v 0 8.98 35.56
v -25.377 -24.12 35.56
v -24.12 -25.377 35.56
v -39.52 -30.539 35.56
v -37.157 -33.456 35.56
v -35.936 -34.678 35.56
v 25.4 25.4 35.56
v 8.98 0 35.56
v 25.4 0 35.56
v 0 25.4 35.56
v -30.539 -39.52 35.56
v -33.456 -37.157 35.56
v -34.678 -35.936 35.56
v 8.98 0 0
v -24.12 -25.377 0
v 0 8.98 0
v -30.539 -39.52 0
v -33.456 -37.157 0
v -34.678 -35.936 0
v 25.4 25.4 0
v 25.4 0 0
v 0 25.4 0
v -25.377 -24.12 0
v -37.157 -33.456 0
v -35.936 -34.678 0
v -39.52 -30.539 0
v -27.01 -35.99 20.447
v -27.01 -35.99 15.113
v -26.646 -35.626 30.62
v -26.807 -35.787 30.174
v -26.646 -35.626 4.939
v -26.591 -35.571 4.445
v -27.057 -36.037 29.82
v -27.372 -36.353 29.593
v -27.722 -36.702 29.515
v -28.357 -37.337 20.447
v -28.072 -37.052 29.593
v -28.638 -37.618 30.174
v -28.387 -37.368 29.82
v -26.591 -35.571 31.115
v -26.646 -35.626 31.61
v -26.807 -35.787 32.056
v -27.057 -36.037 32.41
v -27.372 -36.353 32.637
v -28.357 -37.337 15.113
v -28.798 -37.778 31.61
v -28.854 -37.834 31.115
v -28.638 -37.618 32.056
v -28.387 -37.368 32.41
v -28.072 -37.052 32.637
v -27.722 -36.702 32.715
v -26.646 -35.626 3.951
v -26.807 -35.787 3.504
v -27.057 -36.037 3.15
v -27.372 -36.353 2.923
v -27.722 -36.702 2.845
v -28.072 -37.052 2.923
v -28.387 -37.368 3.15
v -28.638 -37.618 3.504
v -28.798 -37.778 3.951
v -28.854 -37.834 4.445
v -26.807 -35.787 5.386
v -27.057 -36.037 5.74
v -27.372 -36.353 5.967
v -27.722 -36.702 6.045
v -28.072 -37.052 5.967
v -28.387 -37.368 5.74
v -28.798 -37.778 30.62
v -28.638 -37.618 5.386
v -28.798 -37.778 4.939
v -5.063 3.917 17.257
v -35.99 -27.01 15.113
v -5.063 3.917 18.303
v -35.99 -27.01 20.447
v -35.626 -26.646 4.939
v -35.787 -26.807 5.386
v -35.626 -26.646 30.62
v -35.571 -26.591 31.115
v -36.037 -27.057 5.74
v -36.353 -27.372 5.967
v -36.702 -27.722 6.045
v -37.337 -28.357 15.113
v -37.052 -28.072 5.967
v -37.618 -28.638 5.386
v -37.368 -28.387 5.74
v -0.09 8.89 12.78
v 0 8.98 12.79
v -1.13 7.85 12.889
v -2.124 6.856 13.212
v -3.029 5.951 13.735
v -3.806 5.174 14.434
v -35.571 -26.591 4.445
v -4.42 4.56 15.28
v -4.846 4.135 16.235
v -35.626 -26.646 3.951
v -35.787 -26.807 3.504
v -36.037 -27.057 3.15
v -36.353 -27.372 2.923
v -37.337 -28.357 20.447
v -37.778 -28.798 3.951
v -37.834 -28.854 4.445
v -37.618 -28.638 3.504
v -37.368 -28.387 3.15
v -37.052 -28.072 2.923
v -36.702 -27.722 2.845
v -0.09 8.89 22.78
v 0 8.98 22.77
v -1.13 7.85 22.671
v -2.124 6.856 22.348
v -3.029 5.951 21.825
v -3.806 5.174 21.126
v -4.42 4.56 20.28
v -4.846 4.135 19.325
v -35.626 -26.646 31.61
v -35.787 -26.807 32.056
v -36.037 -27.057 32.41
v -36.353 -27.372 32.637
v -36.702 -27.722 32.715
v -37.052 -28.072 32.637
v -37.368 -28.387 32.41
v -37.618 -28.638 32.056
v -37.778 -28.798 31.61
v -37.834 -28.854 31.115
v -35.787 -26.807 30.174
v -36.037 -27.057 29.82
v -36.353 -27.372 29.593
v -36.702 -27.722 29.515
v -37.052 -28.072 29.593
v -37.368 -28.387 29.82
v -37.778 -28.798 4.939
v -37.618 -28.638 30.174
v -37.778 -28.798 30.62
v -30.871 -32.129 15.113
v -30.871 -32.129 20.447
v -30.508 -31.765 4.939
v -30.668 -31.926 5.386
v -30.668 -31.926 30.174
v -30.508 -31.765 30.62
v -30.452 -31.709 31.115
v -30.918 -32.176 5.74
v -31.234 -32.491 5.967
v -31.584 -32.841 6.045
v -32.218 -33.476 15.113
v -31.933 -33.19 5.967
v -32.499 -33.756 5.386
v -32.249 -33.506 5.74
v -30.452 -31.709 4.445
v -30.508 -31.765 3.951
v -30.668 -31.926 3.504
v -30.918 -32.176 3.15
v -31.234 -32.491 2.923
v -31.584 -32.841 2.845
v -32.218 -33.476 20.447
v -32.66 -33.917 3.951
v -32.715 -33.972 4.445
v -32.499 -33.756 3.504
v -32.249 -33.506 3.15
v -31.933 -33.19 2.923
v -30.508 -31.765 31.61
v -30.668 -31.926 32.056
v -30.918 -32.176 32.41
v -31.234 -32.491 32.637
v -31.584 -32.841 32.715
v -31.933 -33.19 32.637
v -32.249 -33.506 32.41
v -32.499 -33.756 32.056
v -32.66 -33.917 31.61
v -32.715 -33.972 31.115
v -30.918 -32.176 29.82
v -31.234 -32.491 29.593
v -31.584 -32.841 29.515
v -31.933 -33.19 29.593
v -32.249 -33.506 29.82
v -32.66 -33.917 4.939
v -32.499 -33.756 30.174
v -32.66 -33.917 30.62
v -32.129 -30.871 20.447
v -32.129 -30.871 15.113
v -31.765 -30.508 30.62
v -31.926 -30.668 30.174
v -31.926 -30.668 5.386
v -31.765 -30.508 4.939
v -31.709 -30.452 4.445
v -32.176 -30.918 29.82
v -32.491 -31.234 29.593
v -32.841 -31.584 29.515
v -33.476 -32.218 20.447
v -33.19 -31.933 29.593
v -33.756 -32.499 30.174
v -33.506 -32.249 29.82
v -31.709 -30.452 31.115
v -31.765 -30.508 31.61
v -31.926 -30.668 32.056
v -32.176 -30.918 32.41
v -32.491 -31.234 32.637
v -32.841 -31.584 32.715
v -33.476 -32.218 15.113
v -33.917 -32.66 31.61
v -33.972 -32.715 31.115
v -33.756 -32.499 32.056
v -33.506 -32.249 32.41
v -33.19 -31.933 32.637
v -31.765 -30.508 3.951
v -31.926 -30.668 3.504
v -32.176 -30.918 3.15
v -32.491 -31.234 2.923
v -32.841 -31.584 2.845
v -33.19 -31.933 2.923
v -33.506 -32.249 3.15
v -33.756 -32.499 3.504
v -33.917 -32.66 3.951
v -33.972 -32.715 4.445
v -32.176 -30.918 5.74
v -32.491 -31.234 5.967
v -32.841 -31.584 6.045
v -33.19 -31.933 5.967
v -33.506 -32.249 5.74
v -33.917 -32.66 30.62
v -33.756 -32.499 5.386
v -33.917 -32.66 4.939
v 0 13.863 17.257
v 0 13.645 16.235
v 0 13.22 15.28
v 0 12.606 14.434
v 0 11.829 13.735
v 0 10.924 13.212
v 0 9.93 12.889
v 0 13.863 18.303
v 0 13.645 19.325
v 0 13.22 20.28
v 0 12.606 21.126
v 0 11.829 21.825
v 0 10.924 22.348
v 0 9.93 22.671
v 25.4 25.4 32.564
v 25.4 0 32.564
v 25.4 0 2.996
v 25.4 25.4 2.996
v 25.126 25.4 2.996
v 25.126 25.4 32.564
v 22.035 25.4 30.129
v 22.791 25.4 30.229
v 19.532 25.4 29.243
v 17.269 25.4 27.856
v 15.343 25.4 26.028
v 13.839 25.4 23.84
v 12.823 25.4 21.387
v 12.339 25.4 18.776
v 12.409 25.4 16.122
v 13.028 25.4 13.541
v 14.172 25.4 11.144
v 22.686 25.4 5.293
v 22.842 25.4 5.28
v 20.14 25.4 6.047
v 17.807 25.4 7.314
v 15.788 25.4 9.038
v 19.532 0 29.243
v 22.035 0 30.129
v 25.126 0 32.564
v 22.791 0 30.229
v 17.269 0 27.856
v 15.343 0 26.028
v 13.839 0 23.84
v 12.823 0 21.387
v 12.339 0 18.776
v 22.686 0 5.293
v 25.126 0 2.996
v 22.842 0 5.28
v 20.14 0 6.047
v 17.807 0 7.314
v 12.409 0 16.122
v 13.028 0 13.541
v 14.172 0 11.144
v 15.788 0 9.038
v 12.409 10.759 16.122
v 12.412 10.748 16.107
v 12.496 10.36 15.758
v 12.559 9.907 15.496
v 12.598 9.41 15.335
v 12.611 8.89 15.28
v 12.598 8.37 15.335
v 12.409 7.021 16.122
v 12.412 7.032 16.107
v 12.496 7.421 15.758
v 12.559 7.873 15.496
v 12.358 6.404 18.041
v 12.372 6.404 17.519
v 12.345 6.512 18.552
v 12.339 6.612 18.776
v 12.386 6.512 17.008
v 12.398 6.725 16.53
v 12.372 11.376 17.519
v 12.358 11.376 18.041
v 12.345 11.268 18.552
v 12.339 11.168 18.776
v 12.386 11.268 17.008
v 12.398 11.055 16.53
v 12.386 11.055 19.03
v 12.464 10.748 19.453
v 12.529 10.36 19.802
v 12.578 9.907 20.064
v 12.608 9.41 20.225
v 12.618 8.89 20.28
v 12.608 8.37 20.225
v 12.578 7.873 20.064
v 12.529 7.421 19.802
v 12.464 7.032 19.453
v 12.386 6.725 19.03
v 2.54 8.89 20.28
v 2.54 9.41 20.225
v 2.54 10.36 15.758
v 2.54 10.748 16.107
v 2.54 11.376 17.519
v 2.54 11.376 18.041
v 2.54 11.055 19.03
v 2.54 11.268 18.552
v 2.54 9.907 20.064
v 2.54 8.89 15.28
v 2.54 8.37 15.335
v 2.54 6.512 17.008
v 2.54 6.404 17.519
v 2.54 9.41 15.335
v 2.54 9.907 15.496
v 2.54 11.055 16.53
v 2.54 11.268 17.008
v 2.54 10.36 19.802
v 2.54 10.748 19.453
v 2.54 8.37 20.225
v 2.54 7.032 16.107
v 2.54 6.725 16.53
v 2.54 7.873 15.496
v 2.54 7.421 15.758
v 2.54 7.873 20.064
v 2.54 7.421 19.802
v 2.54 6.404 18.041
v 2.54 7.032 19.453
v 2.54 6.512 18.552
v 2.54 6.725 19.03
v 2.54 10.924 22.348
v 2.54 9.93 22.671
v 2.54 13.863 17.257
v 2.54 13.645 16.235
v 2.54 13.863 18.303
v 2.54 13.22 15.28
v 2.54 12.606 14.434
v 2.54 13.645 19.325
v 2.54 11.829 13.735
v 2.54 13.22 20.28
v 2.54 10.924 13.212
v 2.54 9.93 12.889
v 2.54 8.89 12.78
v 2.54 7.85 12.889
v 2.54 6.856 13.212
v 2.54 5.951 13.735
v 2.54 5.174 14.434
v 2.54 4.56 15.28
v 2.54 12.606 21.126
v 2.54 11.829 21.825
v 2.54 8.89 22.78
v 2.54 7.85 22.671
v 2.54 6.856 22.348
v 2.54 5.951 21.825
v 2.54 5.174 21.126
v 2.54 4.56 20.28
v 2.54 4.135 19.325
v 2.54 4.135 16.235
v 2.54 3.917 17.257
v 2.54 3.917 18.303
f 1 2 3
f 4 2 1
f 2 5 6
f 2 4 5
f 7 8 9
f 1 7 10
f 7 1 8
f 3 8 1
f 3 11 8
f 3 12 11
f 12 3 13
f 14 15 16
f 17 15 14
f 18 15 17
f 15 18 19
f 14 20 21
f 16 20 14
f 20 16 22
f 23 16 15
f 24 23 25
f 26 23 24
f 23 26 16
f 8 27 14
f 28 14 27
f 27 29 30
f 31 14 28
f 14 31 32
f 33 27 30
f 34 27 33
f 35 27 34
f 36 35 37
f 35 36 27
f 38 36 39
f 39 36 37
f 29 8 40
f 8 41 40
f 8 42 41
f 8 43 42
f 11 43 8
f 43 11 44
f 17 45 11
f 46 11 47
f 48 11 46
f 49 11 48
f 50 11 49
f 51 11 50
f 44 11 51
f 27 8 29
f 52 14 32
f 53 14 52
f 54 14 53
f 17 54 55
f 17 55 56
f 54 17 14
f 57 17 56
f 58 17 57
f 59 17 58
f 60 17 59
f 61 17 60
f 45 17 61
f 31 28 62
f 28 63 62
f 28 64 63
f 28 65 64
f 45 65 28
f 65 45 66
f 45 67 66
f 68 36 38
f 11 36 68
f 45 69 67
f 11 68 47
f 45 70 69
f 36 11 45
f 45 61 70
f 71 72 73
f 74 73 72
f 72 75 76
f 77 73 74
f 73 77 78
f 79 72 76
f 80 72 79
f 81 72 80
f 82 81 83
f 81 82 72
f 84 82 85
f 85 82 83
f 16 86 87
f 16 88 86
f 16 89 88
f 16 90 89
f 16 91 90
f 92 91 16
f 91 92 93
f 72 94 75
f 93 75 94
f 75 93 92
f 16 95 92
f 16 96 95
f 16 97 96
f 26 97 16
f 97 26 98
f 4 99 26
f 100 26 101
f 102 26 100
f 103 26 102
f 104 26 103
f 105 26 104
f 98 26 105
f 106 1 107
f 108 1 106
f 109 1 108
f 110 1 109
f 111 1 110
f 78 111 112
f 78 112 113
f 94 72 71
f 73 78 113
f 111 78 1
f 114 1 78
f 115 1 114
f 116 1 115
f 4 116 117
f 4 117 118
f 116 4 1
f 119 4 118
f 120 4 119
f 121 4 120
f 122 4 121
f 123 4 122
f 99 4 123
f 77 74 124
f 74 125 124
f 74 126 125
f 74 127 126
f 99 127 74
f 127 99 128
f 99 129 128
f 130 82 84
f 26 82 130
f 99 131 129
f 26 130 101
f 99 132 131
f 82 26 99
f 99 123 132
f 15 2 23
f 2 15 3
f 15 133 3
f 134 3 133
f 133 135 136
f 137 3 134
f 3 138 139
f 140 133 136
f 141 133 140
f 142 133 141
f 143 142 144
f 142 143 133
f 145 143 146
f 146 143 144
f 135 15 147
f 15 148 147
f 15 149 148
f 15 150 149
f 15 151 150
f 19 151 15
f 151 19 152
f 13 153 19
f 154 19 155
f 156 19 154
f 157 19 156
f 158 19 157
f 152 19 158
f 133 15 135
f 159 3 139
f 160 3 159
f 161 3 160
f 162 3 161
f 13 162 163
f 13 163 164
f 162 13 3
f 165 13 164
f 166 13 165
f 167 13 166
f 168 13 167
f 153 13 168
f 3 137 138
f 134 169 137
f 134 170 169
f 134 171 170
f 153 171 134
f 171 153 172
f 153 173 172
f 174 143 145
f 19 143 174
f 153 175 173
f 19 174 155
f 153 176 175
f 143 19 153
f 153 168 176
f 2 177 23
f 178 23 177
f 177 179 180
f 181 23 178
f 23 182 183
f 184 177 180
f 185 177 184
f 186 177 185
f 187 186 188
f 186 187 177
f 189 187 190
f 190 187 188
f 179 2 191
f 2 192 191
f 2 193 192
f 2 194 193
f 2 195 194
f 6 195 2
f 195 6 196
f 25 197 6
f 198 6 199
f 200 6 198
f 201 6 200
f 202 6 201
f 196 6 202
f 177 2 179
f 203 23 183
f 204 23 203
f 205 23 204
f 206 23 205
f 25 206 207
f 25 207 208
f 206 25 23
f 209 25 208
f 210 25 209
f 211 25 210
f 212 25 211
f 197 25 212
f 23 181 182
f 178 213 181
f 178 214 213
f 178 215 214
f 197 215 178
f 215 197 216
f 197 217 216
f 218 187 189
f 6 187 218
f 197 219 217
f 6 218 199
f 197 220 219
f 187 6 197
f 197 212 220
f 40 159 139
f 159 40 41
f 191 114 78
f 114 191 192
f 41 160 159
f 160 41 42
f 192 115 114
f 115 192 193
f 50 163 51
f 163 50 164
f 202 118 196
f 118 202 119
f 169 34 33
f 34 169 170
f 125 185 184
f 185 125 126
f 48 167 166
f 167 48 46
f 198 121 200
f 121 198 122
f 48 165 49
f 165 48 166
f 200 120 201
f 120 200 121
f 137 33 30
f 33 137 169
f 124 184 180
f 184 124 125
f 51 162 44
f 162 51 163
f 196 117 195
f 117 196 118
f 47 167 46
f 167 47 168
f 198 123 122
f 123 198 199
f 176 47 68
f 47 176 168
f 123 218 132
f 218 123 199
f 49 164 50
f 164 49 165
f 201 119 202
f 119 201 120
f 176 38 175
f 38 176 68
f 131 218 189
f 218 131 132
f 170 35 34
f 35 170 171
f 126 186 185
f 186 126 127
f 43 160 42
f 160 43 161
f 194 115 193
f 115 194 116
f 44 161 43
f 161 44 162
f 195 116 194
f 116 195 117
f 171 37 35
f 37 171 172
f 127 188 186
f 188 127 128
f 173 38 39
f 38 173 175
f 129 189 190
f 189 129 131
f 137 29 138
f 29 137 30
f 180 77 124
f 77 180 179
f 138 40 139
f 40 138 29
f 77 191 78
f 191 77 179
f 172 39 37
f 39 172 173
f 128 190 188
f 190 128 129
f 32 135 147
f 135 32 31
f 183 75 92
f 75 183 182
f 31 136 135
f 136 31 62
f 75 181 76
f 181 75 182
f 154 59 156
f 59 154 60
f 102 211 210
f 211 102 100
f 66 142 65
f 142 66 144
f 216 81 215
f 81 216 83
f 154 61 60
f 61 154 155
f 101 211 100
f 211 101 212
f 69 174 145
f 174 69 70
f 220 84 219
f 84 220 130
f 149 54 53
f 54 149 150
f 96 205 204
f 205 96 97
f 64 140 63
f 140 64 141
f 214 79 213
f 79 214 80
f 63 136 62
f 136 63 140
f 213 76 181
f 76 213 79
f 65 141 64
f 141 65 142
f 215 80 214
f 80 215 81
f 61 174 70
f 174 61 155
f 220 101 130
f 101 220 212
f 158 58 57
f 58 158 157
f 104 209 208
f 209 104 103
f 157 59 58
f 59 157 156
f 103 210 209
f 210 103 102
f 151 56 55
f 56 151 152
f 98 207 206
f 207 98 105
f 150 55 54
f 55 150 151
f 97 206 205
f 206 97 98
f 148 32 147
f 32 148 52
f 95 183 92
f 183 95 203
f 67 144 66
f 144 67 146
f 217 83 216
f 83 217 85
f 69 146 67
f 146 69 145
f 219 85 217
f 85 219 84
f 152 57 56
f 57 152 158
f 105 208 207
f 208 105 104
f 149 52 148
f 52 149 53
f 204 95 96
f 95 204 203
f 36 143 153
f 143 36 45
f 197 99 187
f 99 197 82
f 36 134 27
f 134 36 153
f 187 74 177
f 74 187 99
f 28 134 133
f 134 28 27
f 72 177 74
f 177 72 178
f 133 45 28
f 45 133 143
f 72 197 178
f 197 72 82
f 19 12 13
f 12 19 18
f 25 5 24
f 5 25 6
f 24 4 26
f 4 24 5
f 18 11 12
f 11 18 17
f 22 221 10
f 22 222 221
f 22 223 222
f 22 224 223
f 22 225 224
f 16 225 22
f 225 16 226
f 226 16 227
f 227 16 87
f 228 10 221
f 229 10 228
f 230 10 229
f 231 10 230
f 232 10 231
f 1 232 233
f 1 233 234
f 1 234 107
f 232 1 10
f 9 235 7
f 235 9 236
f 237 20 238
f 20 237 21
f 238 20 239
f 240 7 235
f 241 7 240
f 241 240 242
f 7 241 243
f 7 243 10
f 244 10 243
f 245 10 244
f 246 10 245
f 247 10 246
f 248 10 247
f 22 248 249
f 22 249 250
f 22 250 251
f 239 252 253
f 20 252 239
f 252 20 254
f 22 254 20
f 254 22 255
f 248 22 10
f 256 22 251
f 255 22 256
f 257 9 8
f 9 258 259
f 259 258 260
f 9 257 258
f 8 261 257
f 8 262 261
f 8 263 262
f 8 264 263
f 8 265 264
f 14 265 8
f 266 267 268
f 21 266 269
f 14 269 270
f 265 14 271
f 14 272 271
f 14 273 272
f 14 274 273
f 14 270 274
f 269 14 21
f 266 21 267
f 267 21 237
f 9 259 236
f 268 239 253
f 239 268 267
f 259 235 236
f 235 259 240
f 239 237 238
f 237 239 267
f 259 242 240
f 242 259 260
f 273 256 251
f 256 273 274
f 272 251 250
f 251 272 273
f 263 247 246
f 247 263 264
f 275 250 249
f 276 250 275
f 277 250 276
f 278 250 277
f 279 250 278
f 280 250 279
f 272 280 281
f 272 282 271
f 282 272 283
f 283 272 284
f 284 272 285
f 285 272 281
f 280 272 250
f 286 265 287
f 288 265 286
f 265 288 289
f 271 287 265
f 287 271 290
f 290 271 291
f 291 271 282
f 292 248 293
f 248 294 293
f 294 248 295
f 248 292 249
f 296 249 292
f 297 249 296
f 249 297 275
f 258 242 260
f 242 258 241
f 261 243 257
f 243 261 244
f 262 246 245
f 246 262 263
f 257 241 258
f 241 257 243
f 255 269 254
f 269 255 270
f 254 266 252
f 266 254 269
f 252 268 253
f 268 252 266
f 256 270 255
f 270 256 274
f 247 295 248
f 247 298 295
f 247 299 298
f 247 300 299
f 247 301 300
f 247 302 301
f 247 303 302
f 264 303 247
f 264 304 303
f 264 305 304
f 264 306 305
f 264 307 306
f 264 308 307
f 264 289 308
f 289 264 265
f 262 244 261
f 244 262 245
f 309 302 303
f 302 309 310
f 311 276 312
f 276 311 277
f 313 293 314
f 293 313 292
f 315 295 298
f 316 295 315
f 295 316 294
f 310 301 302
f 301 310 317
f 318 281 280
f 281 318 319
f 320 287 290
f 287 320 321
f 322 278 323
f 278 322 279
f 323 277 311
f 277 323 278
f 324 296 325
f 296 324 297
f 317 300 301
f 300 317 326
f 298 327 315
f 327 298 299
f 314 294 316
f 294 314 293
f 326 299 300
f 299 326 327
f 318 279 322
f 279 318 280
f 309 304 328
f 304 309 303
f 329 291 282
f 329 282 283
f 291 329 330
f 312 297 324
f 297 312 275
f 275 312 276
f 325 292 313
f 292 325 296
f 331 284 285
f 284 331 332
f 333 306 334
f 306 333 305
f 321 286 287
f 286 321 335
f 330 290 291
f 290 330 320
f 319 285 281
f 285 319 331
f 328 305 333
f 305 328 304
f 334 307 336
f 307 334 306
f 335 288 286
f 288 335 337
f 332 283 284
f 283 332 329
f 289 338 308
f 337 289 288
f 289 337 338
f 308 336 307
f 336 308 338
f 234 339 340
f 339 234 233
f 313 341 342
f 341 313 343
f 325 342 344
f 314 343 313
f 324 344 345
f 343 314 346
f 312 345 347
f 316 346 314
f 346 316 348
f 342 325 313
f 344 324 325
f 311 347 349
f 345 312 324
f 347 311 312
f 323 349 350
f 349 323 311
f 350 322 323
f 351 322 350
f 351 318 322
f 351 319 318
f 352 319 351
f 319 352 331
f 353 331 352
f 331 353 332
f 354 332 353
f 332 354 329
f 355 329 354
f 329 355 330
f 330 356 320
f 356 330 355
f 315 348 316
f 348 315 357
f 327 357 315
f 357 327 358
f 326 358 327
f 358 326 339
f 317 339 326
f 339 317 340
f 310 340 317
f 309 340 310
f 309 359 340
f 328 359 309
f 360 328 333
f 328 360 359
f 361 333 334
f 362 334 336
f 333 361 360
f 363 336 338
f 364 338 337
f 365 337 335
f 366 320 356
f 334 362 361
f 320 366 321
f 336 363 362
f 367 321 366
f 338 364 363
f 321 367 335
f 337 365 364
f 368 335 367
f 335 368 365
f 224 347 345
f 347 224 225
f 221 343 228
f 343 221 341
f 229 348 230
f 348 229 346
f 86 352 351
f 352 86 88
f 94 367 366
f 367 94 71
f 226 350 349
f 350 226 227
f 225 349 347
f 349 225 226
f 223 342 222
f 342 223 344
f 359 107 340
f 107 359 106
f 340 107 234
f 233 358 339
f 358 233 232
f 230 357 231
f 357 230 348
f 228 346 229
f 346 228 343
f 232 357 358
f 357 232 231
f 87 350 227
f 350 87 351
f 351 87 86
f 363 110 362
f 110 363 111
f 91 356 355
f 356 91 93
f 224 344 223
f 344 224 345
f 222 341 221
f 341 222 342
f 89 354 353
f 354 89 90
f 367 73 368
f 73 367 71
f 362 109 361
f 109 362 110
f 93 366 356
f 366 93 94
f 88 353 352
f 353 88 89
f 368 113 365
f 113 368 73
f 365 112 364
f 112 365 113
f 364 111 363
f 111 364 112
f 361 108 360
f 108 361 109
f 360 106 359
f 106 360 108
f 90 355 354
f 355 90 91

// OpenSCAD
/* Electric Fence Wire Support
    Author:  Tom Clupper
    Date: 6/30/2020
    License: Attribution-ShareAlike 4.0 International (https://creativecommons.org/licenses/by-sa/4.0)
    
    NOTES:
    - Use this desgin at your own risk.  There is no guarantee that it will work for you.    
    - No supports needed
    - Use a plastic material that will withstand the temperatures and weather conditions outdoors
    - Is attached using a standard 1-1/4 inch long #10 machine screw and nut.  The nut will be held in place.
    - The wire is held in the slot using a standard 3/16 inch wide plastic wire tie (0.053 inch thick)
*/

// A couple of constants (need to end up in mm)
mm = 1.0;
cm = 10.0;
inches = 25.4;
inch = 25.4;
mils = 25.4/1000.0;

// Define some variables
ST = 1.4*inch;      // Support thickness
PBD = 100*mm;       // Print bed diameter
n = 8;              // Number of sides to support
SW = 80*mm;         // Support width
Angle = 45;          // Support angle (0 to 50 degrees)
WD = 0.070*inches;   // Wire diameter


translate([0,0,ST/2]) {    
   difference(){
    union(){
      intersection(){
        rotate([0,0,Angle]){
          difference(){
            // Support stem  
            translate([-PBD/4,0,0]) cube([PBD/2+PBD/2, 0.5*inches,ST], center=true);
            // Slot for wire    
            translate([-PBD/2,0,0]) cube([30*mm, WD, ST], center=true);
            // Holes for wire (if you need to tie it off)
            translate([-PBD/2+2.5*WD,0,ST/2-2.5*WD]) rotate([90,0,0]) cylinder(h=1.5*inch, d=1.8*WD, center=true, $fn=20); 
            translate([-PBD/2+2.5*WD,0,-(ST/2-2.5*WD)]) rotate([90,0,0]) cylinder(h=1.5*inch, d=1.8*WD, center=true, $fn=20);
            // Slot for plastic strap (to hold sire in slot) 
            translate([-PBD/2+4.5,0,0]) cube([0.075*inch,1.5*inch,0.21*inch], center=true);  
          } 
        }
        // Clip off the bed diameter
        cylinder(h=ST,d=PBD,center=true, $fn=60);             
      }
      // The base
      translate([0,0,-ST/2]) cube([1*inch,1*inch,ST]);     
    }
    union(){
      translate([PBD/3.2,0,0]) rotate([0,0,90]) rotate([0,90,0]) rotate([0,0,360/(2*n)]) cylinder(h=PBD/2+PBD/2,r=0.63*inches, center=true, $fn=n);
      translate([PBD/4,0,0]) rotate([0,0,90]) rotate([0,90,0]) rotate([0,0,360/(2*n)]) cylinder(h=PBD/2+PBD/2,r=0.5*inches, center=true, $fn=30);
    // #10 screw relief
      #translate([0,0.35*inches,0]) rotate([0,90,0]) cylinder(h=PBD,d=5*mm, center=true, $fn=30);
      #translate([-0.1*inches,0.35*inches,0]) rotate([0,90,0]) cylinder(h=0.4*inches,d=10*mm, center=true, $fn=30);     
    }
  }
}
